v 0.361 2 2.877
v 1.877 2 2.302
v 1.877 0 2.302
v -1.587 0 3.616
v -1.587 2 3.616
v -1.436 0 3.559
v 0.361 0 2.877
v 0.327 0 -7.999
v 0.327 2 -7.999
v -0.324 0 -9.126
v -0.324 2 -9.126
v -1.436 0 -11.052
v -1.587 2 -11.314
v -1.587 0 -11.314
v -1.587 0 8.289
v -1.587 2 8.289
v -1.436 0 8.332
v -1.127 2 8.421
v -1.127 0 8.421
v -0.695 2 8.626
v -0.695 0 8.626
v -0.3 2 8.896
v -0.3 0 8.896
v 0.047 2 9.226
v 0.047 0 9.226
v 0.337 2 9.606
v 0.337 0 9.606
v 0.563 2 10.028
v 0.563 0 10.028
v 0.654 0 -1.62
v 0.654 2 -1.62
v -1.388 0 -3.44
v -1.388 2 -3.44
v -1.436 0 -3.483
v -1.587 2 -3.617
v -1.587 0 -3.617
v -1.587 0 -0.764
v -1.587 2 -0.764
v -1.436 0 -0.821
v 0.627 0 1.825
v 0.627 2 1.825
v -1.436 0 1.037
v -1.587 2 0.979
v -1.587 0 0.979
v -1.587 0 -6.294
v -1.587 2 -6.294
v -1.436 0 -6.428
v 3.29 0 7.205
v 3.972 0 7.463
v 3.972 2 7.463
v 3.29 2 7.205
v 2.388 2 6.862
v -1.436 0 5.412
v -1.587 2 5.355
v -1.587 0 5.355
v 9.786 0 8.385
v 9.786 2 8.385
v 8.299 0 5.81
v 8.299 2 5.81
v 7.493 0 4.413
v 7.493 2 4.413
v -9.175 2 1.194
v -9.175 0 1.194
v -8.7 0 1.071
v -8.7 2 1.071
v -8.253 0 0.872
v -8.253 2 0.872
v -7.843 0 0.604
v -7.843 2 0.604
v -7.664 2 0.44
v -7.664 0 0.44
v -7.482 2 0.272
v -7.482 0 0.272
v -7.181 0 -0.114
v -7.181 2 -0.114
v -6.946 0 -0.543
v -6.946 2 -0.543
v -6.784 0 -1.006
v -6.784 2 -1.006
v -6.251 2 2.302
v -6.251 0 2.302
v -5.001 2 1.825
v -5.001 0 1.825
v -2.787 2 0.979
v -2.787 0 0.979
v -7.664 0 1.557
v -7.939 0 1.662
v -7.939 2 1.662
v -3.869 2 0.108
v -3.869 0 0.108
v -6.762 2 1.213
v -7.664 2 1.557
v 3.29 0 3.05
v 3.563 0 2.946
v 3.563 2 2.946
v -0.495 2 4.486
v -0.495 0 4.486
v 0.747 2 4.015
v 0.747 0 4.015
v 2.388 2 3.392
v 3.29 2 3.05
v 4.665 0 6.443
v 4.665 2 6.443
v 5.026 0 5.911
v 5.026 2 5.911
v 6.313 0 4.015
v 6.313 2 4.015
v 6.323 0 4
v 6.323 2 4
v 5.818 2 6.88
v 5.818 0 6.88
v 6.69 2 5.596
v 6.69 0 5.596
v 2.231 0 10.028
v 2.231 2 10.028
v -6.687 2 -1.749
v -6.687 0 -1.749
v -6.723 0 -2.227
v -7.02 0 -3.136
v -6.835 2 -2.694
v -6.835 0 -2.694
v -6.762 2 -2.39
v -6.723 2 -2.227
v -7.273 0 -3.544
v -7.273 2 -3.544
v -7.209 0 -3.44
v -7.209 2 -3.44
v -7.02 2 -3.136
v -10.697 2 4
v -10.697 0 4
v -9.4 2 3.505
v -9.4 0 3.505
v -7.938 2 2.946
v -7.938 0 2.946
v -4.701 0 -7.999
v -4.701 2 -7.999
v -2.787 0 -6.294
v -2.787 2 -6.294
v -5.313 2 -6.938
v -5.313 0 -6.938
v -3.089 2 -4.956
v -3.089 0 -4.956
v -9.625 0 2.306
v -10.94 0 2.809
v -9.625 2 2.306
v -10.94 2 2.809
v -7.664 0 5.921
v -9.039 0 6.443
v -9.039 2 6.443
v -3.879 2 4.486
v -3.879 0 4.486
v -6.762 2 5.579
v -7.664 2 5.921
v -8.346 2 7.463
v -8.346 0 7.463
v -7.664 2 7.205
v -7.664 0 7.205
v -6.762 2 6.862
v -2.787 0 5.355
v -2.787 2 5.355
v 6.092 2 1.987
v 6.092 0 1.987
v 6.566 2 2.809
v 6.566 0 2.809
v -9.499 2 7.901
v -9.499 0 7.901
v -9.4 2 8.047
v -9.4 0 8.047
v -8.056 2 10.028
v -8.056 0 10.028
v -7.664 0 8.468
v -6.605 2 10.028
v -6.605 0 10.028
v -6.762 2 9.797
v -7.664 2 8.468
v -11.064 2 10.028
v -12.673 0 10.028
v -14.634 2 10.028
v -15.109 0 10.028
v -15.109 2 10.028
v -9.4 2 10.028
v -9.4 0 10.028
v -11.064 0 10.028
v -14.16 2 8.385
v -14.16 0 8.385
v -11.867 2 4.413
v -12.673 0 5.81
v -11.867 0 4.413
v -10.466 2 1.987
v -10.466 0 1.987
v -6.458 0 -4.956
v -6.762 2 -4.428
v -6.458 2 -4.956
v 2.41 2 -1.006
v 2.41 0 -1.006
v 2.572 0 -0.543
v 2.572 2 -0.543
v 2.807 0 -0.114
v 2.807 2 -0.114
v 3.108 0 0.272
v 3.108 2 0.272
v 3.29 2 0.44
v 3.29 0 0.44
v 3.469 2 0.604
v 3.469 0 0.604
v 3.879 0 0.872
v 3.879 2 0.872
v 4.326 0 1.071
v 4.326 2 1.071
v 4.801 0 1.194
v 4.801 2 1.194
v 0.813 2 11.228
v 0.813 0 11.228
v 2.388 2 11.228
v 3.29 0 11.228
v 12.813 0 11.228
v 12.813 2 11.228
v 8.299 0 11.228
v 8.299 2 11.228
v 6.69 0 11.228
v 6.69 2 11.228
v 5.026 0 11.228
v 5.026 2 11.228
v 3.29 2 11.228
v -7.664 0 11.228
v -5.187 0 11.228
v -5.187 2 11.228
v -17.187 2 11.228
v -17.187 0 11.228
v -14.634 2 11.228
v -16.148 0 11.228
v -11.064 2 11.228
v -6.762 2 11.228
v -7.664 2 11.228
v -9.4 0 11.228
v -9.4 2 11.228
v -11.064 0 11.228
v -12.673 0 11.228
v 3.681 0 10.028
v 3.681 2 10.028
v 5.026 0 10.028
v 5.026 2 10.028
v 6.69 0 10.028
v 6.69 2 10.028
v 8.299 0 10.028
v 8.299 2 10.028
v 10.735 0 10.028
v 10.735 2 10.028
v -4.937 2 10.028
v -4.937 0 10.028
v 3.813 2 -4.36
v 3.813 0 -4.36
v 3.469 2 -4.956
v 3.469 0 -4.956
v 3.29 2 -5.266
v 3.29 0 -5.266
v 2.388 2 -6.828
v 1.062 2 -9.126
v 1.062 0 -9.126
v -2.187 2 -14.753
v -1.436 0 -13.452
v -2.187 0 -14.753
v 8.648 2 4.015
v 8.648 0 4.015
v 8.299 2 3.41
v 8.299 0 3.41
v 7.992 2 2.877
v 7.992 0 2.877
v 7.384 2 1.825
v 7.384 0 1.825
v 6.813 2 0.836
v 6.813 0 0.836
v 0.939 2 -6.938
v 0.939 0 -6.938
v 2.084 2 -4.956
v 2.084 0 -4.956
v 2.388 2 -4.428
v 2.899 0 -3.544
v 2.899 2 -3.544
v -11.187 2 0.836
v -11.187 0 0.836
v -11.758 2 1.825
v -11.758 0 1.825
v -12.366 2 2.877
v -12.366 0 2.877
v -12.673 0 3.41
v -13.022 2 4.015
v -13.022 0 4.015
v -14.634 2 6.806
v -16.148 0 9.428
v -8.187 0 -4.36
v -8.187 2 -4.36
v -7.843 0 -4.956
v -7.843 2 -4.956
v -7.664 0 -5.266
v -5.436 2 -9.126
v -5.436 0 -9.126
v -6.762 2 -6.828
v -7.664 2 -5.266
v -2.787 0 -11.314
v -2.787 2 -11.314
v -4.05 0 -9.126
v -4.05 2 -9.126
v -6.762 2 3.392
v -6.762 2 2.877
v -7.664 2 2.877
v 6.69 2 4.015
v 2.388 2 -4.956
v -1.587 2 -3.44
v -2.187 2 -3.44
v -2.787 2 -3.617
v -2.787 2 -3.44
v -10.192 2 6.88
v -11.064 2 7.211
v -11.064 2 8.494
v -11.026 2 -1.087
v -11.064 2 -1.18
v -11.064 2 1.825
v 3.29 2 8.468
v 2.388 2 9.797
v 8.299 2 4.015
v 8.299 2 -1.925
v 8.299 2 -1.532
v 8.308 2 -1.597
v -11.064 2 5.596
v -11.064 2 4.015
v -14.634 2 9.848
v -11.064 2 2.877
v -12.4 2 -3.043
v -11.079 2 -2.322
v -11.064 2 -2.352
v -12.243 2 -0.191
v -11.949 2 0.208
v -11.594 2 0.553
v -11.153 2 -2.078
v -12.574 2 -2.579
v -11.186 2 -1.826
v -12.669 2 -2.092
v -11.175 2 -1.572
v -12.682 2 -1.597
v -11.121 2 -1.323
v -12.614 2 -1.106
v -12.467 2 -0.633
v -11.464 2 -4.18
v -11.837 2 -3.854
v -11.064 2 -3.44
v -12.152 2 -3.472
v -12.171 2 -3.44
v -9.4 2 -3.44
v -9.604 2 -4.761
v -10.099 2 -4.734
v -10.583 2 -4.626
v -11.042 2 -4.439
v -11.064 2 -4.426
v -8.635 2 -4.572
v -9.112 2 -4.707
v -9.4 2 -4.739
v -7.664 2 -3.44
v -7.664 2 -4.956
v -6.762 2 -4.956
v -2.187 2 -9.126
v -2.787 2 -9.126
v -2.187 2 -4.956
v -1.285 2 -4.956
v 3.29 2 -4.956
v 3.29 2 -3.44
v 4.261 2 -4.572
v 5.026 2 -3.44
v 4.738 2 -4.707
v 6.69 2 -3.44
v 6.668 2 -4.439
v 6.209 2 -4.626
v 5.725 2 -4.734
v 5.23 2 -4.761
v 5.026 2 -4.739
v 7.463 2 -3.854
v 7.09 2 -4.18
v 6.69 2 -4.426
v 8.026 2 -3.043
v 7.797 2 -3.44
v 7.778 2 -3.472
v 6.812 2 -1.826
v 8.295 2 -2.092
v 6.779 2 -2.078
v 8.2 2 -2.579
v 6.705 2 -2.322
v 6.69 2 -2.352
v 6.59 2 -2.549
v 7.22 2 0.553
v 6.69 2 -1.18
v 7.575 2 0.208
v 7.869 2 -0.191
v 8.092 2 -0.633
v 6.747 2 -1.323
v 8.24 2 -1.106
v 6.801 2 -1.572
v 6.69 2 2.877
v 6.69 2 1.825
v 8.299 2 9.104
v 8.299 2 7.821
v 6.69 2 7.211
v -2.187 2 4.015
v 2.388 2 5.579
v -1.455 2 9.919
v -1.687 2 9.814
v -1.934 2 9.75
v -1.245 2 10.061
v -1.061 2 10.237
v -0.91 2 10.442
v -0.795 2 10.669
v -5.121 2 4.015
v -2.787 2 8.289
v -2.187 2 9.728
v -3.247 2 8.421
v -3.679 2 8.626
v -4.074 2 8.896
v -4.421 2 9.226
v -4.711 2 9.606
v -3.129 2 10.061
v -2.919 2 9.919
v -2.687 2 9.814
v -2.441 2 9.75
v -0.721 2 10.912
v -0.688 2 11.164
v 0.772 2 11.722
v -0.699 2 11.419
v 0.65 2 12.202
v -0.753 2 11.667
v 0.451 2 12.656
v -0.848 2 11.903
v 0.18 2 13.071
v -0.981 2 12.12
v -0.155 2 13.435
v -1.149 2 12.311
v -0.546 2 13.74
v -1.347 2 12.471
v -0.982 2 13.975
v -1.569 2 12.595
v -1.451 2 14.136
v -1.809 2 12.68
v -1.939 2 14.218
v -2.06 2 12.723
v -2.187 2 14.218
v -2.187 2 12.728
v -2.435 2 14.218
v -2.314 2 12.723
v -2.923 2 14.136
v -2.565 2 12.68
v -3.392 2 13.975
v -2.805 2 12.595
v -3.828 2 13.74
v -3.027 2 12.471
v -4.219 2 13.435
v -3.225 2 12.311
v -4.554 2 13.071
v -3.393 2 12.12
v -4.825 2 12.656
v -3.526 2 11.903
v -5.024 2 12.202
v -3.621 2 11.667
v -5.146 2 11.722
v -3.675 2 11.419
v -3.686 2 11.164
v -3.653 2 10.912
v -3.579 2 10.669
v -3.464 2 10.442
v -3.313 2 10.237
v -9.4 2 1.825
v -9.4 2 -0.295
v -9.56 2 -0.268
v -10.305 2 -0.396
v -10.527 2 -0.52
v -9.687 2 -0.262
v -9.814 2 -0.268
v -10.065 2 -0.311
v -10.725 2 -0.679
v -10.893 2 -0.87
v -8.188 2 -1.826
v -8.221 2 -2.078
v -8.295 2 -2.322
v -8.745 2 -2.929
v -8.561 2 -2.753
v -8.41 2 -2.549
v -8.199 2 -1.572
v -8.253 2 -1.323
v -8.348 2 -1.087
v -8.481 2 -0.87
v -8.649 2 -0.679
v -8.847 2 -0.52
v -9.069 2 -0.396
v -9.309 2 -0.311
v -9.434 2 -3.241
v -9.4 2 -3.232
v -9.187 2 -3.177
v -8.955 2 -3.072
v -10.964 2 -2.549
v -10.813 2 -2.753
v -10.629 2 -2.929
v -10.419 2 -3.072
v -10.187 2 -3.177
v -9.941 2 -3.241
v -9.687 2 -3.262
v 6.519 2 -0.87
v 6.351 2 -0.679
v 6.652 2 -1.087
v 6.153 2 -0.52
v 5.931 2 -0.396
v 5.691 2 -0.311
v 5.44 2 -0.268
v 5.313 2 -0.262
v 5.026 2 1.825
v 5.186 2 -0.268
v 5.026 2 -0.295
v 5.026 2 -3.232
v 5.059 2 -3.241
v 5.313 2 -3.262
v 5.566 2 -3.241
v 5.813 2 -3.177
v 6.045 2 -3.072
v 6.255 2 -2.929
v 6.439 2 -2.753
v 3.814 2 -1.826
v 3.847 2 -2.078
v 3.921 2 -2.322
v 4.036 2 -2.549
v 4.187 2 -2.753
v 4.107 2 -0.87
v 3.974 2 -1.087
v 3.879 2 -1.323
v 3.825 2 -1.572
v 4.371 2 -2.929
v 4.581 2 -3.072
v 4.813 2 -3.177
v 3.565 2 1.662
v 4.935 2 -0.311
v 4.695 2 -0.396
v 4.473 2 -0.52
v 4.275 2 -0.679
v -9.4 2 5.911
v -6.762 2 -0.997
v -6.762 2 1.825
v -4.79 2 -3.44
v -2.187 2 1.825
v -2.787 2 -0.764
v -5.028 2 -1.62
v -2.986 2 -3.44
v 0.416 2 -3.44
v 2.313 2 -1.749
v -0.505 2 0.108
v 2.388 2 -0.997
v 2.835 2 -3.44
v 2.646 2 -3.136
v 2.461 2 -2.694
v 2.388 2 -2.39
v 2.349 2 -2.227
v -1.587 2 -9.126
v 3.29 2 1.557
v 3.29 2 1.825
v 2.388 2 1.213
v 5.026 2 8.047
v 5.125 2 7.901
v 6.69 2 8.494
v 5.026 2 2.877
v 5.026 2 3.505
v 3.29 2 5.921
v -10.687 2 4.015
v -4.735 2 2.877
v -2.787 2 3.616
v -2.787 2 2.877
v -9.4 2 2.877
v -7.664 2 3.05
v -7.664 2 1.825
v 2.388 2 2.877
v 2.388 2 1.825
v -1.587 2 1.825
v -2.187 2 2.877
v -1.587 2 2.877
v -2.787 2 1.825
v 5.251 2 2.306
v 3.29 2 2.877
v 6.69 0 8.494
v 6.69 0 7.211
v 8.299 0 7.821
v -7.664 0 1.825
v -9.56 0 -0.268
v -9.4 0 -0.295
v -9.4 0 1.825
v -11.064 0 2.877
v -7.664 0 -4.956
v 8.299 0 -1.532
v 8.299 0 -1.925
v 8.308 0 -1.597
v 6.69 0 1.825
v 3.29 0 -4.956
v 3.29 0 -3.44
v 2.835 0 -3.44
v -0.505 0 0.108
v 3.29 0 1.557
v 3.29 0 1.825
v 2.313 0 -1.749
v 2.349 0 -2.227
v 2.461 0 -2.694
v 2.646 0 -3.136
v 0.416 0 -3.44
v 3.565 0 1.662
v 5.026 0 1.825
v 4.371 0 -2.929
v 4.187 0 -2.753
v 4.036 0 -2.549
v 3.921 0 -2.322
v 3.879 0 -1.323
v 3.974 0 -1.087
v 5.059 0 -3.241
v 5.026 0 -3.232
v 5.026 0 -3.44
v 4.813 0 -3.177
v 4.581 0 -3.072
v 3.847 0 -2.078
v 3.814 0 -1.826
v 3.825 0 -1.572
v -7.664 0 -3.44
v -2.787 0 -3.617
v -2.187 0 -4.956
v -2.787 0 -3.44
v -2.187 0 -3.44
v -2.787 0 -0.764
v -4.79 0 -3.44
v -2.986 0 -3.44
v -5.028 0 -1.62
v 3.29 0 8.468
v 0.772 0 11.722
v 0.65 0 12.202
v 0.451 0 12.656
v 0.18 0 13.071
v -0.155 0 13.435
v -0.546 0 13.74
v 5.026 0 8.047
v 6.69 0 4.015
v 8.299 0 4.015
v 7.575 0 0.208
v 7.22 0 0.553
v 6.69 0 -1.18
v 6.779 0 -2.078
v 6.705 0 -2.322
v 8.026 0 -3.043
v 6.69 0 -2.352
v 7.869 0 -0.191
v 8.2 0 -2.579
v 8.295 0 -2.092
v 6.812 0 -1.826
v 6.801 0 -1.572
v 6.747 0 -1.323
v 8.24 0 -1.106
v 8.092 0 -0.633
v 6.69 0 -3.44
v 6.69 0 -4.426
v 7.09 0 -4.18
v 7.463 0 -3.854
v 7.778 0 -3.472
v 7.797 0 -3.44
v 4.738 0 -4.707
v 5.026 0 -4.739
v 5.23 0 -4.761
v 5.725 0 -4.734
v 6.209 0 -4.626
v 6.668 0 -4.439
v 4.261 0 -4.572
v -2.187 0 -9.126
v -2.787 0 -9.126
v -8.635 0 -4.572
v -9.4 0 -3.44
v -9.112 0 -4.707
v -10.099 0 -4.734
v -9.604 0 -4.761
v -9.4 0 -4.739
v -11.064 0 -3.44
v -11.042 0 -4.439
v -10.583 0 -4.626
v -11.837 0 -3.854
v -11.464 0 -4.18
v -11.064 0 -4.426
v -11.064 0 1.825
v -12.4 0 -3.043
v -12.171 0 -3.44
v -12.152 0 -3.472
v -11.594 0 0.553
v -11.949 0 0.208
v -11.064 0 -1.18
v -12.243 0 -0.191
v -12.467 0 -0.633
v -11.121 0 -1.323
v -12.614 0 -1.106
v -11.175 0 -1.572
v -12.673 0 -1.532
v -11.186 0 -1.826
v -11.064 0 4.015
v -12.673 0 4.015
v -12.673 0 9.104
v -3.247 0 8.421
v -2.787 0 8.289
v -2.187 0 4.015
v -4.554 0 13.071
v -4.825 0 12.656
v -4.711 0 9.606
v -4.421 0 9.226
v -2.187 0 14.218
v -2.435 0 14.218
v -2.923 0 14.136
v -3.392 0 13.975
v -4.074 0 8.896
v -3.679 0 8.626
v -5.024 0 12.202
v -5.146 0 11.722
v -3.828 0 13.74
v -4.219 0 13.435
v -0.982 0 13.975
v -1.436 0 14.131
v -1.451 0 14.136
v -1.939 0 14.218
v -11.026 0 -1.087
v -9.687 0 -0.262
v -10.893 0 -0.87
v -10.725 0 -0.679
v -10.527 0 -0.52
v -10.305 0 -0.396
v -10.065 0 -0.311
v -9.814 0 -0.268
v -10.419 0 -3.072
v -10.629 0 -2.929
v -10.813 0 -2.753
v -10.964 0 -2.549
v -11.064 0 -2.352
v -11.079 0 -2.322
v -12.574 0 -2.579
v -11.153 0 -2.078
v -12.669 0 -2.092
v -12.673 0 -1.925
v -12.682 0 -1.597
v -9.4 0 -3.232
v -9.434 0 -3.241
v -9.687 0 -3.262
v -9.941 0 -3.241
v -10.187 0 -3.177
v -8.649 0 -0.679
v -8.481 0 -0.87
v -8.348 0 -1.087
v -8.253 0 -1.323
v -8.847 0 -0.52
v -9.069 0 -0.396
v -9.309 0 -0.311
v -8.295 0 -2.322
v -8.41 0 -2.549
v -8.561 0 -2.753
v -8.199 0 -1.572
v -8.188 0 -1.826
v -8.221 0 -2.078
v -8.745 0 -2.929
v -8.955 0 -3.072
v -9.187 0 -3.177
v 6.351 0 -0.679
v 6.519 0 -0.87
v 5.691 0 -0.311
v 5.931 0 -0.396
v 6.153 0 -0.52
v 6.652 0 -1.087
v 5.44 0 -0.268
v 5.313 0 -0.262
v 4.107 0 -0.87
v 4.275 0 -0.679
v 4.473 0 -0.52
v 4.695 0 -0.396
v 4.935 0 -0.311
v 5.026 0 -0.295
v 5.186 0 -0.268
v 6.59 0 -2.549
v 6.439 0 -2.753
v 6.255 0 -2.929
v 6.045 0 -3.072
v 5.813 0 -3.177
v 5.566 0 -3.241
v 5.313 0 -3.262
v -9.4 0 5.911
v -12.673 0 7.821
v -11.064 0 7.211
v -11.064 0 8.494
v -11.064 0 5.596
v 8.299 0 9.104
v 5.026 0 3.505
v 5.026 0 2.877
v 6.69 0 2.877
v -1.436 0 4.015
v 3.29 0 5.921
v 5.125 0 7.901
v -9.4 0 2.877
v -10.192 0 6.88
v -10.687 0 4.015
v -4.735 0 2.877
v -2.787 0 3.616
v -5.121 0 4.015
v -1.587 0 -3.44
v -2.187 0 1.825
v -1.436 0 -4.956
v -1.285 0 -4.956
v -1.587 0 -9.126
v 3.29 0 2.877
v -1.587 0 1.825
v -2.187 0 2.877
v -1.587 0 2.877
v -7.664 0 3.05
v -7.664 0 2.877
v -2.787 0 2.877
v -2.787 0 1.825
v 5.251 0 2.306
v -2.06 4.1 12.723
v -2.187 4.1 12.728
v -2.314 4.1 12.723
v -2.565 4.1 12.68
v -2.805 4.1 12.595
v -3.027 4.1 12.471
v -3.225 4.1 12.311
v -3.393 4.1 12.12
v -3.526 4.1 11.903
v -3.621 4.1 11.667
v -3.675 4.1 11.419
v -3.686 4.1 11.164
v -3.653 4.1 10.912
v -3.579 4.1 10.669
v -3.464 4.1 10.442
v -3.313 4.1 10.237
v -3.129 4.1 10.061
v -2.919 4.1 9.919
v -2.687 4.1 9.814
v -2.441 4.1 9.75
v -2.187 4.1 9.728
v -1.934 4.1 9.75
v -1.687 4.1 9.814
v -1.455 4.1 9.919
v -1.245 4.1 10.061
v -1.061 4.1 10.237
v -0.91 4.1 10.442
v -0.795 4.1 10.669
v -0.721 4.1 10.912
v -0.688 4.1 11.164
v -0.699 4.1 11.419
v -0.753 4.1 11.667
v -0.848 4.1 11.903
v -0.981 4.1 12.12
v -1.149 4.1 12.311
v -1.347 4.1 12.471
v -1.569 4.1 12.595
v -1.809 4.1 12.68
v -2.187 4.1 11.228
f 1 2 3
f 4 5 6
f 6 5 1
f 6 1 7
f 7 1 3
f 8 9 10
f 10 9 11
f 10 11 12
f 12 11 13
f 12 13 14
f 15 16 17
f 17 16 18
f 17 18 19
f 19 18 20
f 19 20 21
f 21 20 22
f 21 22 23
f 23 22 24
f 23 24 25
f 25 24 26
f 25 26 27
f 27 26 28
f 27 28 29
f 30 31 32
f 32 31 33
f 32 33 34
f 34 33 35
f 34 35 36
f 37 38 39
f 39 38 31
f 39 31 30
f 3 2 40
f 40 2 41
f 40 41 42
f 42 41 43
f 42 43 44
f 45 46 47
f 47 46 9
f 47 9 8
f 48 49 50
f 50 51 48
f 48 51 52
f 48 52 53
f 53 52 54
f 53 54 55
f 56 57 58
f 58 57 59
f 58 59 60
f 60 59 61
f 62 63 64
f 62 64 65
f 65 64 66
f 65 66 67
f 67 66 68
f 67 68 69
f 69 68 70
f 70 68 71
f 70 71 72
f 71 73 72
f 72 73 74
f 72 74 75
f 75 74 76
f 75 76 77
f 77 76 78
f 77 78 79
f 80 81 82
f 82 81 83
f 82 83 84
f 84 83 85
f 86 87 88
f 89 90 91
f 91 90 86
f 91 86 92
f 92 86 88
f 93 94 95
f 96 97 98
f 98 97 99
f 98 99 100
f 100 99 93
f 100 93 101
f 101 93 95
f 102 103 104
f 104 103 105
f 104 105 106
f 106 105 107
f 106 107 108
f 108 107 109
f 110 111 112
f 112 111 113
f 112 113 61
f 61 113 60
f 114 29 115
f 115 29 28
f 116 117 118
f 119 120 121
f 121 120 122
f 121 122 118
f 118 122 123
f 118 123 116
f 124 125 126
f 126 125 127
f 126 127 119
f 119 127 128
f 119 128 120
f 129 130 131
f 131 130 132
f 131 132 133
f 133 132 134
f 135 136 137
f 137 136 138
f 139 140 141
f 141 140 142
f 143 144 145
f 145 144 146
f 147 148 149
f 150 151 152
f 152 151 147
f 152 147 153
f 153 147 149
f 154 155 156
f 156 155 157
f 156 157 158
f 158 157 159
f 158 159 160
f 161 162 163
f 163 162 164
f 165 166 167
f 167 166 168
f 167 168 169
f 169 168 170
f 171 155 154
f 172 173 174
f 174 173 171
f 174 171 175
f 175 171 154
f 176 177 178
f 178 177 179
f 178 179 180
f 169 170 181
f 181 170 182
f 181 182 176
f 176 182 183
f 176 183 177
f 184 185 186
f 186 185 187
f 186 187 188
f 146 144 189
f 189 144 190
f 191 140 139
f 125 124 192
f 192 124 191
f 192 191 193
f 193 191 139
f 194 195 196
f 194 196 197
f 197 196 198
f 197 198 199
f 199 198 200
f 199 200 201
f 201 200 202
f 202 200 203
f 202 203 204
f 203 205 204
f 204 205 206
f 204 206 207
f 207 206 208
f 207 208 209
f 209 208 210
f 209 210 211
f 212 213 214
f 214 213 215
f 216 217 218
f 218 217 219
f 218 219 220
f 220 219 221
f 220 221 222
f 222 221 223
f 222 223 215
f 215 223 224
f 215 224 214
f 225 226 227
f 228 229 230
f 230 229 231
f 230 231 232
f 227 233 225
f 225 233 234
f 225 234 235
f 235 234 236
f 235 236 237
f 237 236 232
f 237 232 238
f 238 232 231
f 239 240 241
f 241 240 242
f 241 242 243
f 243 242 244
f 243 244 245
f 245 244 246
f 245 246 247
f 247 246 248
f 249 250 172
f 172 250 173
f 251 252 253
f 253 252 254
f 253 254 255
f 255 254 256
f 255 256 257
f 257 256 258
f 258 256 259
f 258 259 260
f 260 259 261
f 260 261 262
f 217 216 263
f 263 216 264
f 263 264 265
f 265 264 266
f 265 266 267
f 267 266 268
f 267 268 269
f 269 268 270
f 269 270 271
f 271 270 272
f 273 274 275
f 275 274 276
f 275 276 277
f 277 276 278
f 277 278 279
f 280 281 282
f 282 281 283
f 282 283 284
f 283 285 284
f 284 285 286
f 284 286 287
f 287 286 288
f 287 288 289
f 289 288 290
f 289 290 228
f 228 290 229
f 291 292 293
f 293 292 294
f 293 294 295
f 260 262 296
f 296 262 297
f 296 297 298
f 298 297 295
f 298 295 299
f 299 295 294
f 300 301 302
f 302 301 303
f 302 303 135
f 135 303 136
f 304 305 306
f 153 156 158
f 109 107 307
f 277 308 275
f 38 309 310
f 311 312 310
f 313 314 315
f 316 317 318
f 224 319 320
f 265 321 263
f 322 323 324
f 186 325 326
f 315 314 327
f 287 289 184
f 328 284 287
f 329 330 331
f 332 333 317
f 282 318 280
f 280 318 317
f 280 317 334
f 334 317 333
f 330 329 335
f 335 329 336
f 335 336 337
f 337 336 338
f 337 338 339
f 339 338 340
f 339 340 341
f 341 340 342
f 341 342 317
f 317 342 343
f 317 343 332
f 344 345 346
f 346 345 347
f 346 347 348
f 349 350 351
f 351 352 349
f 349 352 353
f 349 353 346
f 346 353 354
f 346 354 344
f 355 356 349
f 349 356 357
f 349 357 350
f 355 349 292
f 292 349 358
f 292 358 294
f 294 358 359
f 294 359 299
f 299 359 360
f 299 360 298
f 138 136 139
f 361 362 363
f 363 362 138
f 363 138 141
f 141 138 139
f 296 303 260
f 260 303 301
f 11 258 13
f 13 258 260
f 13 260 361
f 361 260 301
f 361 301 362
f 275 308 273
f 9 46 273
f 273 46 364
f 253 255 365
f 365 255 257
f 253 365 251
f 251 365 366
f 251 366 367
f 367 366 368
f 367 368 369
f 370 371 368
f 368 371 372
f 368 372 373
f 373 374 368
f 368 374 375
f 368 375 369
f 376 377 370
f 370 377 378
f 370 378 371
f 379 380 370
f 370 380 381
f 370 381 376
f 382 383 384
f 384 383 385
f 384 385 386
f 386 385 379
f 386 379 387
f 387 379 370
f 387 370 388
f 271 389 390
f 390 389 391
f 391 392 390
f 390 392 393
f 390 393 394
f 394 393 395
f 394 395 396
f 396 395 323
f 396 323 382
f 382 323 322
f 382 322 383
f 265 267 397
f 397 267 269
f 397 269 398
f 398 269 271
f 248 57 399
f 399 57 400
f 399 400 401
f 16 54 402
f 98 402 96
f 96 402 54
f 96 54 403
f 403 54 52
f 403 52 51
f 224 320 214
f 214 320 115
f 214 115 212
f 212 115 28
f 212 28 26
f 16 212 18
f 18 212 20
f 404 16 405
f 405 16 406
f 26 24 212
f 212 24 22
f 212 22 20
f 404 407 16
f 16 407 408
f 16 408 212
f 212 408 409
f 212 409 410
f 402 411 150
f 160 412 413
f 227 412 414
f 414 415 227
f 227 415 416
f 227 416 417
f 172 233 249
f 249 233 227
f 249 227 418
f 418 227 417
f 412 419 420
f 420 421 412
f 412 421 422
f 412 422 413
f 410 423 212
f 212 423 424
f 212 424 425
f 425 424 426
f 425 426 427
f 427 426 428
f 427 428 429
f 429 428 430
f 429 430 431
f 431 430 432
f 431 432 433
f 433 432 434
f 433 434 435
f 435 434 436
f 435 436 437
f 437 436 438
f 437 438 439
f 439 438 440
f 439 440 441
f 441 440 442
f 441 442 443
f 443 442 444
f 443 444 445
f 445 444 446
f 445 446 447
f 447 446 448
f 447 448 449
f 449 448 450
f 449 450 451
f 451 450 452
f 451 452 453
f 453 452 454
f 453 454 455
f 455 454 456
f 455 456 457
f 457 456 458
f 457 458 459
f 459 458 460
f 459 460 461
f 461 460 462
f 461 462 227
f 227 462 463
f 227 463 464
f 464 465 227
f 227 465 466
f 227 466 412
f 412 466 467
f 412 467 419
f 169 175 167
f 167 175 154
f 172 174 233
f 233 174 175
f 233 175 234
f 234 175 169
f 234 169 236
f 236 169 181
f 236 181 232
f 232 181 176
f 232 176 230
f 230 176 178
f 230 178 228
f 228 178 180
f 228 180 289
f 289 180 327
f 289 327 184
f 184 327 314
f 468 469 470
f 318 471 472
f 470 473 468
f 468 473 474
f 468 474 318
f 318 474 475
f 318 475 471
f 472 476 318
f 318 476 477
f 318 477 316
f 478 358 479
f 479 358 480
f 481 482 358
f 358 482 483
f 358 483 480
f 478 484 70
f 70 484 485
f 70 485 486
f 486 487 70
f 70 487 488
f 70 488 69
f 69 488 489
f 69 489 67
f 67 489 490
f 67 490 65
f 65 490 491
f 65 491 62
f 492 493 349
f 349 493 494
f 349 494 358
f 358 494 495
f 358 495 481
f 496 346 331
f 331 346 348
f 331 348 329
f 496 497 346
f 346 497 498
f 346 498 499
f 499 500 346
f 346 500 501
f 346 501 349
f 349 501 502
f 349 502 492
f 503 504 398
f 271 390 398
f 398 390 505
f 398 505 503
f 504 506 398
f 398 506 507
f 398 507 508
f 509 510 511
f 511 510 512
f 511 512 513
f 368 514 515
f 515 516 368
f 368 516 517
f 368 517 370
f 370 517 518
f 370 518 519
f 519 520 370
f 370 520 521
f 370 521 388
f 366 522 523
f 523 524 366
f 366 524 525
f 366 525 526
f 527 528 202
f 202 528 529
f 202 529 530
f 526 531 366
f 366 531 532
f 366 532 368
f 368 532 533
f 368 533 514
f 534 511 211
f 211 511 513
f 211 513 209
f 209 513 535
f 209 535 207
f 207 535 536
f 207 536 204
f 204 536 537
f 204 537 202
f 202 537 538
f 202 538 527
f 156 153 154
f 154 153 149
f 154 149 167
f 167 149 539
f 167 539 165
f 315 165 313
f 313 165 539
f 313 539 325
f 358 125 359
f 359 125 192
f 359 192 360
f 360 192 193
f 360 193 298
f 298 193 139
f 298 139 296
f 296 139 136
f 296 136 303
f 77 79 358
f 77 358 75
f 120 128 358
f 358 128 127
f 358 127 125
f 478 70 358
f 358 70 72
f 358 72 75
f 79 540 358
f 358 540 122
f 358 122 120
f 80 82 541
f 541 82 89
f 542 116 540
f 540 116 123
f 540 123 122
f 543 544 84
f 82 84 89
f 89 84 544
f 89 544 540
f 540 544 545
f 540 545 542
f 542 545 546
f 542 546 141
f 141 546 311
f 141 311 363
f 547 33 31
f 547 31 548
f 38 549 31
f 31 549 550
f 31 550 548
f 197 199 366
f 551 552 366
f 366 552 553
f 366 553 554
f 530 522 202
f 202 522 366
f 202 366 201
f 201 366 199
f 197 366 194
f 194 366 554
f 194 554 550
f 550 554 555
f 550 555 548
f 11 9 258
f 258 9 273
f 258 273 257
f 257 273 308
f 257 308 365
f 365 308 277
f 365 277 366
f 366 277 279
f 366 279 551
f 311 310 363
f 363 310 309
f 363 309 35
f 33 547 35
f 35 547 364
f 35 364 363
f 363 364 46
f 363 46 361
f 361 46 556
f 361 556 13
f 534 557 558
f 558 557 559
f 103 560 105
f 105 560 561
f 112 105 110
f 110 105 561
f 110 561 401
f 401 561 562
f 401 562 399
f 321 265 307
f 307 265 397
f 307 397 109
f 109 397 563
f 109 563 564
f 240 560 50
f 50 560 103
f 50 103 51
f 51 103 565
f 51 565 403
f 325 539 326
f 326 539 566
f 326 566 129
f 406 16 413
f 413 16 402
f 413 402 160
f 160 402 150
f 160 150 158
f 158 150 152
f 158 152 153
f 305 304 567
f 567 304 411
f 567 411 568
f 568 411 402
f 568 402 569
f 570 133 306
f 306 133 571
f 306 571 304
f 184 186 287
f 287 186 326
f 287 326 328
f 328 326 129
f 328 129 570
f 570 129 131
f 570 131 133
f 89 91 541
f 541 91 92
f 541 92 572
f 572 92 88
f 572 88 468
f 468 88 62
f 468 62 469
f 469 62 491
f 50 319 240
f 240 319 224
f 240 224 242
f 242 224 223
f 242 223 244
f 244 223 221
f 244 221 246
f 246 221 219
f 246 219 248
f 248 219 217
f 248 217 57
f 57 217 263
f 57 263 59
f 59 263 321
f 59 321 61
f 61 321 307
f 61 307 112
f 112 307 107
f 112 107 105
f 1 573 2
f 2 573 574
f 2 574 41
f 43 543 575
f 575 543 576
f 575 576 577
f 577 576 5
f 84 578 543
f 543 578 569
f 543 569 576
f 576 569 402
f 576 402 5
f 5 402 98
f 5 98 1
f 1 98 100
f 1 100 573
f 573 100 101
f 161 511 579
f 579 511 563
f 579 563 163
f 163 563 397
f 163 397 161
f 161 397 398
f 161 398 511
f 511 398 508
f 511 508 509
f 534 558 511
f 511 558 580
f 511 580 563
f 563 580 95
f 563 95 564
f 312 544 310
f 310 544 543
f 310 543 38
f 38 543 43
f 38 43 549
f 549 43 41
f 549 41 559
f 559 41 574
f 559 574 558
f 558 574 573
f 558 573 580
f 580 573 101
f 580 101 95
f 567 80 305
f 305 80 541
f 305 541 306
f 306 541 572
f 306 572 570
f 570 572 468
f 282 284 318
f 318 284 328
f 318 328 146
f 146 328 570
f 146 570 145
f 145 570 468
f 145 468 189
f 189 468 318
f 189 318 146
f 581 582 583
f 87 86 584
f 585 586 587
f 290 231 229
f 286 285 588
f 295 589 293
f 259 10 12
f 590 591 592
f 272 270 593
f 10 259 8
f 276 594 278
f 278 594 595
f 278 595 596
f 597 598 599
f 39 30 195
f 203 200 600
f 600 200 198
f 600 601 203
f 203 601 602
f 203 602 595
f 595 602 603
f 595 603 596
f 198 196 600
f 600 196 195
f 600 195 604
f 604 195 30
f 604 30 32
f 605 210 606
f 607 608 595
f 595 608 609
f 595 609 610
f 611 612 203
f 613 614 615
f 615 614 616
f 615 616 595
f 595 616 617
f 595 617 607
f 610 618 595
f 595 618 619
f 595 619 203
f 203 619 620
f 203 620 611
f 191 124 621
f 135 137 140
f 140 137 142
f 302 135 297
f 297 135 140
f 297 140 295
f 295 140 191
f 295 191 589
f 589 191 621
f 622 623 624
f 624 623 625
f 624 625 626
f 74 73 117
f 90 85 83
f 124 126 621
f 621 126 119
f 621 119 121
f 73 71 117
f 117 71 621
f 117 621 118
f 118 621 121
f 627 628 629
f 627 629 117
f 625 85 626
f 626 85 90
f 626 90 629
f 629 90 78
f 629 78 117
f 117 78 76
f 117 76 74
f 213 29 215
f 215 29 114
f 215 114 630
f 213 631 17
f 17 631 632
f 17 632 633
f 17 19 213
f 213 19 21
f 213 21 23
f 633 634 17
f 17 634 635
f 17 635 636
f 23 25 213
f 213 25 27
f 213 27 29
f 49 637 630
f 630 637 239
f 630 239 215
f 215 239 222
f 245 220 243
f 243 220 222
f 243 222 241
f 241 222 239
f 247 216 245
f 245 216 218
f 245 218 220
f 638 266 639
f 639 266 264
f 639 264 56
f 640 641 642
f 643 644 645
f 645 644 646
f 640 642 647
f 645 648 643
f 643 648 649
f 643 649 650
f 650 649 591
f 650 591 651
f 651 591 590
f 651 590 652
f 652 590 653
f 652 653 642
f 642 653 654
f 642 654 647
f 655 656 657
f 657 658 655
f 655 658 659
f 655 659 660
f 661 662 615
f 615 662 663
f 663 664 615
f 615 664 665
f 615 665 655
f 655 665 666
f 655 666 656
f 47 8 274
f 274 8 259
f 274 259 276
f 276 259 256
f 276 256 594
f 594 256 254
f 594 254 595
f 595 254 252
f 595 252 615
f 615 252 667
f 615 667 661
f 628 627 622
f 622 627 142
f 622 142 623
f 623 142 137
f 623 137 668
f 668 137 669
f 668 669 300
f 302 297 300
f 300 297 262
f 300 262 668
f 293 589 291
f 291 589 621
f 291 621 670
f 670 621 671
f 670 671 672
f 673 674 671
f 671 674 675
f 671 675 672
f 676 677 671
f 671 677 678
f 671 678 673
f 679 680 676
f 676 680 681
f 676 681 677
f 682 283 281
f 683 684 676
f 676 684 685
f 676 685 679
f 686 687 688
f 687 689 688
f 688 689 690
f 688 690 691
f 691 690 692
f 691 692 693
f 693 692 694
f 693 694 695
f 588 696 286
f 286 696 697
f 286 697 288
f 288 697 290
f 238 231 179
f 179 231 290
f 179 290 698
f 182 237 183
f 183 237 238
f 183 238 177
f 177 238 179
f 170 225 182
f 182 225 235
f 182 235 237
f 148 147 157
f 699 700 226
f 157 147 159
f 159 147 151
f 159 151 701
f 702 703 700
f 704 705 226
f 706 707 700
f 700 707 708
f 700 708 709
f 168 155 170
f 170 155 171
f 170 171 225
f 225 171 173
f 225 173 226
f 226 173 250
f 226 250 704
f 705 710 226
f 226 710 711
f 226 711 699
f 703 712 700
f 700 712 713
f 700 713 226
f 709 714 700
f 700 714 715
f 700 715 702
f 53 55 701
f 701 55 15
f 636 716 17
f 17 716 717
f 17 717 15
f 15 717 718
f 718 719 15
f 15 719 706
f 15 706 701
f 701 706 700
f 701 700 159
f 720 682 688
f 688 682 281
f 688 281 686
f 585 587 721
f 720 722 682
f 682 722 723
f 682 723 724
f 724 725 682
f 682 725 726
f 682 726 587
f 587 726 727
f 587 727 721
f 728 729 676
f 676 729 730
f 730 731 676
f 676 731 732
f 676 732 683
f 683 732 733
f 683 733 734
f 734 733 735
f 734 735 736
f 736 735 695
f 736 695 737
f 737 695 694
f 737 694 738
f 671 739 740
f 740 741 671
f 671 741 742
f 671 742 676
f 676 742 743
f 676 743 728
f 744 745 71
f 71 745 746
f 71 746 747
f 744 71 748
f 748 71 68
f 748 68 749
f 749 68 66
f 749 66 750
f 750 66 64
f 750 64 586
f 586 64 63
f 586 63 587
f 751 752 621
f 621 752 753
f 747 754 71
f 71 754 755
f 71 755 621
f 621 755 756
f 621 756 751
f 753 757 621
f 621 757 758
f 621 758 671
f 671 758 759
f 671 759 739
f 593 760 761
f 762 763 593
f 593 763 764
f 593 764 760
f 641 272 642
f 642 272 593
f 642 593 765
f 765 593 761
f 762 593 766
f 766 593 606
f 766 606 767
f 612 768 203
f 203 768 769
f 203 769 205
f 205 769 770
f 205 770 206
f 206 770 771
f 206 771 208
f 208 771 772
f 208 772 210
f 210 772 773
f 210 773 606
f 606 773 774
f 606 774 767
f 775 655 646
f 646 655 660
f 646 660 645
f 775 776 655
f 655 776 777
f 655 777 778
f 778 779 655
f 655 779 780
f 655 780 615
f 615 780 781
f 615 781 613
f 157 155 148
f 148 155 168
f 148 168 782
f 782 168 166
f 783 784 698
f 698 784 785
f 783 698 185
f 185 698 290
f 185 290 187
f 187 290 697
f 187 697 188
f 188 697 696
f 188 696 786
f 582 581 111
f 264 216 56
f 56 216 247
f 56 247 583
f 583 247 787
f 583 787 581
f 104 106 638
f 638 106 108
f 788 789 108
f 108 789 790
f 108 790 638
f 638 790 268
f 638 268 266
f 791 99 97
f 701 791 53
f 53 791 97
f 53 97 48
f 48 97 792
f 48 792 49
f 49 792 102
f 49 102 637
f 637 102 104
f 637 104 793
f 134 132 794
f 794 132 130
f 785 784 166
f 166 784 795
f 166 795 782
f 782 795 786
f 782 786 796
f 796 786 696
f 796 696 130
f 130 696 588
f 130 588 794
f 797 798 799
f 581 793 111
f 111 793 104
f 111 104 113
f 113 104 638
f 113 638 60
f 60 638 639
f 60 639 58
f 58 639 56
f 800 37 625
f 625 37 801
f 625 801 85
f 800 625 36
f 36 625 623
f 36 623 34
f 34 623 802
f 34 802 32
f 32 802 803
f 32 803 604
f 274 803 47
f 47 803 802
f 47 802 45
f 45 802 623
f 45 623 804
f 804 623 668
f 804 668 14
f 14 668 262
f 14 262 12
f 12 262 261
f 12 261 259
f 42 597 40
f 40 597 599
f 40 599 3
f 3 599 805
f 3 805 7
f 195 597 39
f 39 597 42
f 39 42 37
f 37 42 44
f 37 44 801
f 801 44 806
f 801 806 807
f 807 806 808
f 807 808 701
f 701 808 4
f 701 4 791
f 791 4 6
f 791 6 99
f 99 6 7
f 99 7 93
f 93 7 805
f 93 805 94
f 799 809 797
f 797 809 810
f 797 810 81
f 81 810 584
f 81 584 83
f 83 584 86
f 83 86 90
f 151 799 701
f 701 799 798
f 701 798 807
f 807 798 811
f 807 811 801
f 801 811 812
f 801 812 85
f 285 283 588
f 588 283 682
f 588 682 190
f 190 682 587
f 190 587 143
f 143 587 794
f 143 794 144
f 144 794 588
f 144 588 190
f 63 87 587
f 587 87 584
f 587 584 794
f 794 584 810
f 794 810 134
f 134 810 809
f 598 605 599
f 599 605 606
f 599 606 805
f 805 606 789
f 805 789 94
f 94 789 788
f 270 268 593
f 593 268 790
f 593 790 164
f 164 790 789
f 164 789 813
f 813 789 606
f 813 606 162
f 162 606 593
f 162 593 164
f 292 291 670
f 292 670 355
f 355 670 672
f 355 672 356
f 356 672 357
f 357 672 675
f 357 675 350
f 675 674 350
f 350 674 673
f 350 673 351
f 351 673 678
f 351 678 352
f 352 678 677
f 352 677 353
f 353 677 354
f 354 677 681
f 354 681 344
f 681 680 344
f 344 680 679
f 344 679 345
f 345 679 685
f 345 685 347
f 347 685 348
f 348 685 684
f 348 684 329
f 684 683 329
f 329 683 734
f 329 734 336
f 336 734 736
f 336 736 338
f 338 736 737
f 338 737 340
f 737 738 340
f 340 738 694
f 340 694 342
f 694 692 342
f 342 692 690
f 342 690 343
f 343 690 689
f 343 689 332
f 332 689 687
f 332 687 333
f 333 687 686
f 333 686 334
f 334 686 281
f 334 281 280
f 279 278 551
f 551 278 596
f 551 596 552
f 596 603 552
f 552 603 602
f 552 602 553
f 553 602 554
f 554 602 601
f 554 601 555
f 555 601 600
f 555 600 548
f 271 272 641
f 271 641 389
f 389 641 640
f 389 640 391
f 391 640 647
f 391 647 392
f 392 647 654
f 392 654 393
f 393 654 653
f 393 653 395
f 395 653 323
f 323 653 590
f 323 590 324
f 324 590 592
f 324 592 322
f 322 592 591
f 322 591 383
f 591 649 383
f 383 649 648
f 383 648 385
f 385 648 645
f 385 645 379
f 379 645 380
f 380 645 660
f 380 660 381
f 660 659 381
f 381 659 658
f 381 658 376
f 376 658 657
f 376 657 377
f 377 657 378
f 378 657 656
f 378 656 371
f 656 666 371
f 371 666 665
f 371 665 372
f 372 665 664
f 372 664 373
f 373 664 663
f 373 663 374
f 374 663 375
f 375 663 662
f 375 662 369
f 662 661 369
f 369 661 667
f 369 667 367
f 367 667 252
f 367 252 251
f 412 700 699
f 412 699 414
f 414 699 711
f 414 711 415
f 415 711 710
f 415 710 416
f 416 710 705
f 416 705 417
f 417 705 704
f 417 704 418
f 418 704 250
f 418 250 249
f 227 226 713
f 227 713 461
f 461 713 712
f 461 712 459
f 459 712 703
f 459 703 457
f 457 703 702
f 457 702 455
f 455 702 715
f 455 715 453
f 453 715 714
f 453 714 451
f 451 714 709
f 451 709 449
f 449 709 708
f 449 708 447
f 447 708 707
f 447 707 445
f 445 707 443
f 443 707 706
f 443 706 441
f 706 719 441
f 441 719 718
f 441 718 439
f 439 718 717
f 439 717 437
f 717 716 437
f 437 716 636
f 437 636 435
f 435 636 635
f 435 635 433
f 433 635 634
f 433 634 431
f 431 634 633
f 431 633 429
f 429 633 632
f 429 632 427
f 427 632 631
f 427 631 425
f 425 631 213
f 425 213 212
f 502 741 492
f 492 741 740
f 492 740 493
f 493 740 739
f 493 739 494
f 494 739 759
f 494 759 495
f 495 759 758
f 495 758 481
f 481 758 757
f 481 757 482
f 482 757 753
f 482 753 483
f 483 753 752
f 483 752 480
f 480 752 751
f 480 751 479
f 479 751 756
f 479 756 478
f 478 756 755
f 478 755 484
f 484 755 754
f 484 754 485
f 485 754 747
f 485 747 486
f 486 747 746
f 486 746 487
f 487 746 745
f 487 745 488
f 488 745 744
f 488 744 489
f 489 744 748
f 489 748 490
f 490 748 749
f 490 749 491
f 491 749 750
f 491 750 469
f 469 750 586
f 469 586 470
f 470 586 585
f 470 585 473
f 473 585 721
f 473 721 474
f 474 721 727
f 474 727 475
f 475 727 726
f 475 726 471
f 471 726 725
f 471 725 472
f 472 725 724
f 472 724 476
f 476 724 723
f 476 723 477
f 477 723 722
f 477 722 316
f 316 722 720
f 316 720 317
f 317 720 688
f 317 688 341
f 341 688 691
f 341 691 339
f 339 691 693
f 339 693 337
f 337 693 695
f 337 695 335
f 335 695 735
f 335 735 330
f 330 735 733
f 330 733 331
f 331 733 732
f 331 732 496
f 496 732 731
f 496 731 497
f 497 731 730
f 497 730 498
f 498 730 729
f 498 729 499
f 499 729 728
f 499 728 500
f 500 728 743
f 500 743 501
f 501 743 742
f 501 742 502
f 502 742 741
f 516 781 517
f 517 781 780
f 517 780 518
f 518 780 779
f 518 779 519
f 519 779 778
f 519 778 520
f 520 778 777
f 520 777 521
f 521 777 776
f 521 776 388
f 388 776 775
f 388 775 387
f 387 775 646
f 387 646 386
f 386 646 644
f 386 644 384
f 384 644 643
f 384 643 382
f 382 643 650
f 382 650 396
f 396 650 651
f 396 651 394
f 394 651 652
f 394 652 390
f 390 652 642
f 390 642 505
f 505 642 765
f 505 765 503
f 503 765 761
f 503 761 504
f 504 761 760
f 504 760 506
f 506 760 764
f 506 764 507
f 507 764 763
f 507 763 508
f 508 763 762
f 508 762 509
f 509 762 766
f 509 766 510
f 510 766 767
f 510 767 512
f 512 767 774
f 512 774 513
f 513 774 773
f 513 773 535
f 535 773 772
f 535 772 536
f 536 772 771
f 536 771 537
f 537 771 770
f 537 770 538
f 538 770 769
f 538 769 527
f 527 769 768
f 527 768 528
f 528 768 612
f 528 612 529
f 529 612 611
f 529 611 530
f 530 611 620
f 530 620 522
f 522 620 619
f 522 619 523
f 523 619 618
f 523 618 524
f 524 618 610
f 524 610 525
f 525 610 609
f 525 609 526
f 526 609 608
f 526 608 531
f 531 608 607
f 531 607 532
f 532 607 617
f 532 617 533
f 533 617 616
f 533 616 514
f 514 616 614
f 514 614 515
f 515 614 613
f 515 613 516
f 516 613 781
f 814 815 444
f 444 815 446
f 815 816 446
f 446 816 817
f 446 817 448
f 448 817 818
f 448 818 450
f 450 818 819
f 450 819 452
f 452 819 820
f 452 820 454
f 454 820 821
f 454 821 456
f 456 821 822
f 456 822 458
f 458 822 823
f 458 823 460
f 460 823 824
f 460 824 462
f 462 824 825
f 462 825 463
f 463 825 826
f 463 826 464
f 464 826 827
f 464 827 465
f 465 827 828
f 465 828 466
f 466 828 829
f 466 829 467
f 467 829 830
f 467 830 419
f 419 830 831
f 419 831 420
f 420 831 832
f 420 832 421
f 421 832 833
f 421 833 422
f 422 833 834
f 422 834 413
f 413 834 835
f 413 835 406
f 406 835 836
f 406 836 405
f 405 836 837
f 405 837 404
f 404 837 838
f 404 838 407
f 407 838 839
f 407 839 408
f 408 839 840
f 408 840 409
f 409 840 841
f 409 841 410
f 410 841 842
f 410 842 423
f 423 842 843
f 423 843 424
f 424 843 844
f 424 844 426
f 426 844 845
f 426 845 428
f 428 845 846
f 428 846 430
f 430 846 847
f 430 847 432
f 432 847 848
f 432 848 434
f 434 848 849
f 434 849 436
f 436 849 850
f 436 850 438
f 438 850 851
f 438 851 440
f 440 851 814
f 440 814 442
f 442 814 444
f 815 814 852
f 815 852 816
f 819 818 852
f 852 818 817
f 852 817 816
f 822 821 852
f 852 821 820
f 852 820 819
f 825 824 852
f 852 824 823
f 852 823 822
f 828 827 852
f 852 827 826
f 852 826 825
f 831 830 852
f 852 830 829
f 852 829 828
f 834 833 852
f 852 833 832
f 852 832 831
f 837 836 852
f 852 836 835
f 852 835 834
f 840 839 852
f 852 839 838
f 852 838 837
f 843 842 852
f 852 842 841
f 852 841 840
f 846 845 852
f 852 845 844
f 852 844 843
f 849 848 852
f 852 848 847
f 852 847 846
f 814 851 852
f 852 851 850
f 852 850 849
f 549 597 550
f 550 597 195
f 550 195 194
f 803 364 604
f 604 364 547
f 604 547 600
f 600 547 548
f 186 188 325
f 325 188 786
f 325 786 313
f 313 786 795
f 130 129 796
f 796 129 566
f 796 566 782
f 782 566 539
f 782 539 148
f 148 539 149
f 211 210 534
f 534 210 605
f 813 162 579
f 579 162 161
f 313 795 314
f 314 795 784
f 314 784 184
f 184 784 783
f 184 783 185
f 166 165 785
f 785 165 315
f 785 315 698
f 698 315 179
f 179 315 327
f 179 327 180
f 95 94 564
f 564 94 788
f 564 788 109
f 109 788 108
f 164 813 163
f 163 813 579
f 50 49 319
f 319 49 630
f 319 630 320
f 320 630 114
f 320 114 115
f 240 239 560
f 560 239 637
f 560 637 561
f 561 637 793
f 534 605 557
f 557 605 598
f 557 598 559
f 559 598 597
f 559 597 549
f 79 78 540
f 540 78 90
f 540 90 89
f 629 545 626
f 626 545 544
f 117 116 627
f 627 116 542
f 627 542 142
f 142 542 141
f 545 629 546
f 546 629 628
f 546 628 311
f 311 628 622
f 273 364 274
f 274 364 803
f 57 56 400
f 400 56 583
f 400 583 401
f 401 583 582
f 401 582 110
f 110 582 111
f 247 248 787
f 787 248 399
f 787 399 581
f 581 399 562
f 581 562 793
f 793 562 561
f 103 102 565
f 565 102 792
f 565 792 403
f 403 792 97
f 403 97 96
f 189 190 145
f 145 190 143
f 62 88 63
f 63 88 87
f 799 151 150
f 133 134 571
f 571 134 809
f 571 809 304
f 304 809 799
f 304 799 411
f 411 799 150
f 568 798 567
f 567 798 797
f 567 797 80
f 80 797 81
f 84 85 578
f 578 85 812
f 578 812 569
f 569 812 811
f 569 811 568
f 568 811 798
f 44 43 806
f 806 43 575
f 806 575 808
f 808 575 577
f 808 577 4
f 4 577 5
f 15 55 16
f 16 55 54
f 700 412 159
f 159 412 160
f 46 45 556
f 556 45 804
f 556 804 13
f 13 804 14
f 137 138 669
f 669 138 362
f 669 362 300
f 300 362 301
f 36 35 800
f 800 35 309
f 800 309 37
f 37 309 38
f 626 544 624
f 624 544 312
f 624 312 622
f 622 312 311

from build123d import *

# Parameters (mm, degrees)
EXTRUDE_THIN1_DEPTH = 2
SKETCH2_R           = 3
BOSS_EXTRUDE1_DEPTH = 2
SKETCH3_R           = 1.5
CUT_EXTRUDE1_DEPTH  = 23.73845331
SKETCH4_R           = 1.5
BOSS_EXTRUDE2_DEPTH = 2.1
EXTRUDE_THIN2_DEPTH = 2
EXTRUDE_THIN3_DEPTH = 2
SKETCH7_W           = 1.2
SKETCH7_H           = 23.975911633
EXTRUDE_THIN4_DEPTH = 2


with BuildPart() as part:
    # Sketch1 → Extrude-Thin1 (new body)
    with BuildSketch(Plane(origin=(0, 0, 0), x_dir=(1, 0, 0), z_dir=(0, 1, 0))):
        Polygon((-2.187026997, 14.752740827), (-17.187026997, -11.228021286), (12.812973003, -11.228021286), align=None)
        Polygon((-2.187026997, 12.352740827), (-15.108566028, -10.028021286), (10.734512034, -10.028021286), align=None, mode=Mode.SUBTRACT)
    extrude(amount=EXTRUDE_THIN1_DEPTH)

    # Sketch2 → Boss-Extrude1 (add)
    with BuildSketch(Plane(origin=(0, 0, 0), x_dir=(1, 0, 0), z_dir=(0, 1, 0))):
        with Locations((-9.687026997, 1.76235977)):
            Circle(SKETCH2_R)
        with Locations((5.312973003, 1.76235977)):
            Circle(SKETCH2_R)
        with Locations((-2.187026997, -11.228021286)):
            Circle(SKETCH2_R)
    extrude(amount=BOSS_EXTRUDE1_DEPTH)

    # Sketch3 → Cut-Extrude1 (cut, through all)
    with BuildSketch(Plane(origin=(0, 0, 0), x_dir=(1, 0, 0), z_dir=(0, 1, 0))):
        with Locations(Location((-9.687026997, 1.76235977, 0), (0, 0, 270))):
            Circle(SKETCH3_R)
        with Locations(Location((5.312973003, 1.76235977, 0), (0, 0, 270))):
            Circle(SKETCH3_R)
    extrude(amount=CUT_EXTRUDE1_DEPTH, mode=Mode.SUBTRACT)

    # Sketch4 → Boss-Extrude2 (add)
    with BuildSketch(Plane(origin=(0, 2, 0), x_dir=(1, 0, 0), z_dir=(0, 1, 0))):
        with Locations(Location((-2.187026997, -11.228021286, 0), (0, 0, 270))):
            Circle(SKETCH4_R)
    extrude(amount=BOSS_EXTRUDE2_DEPTH)

    # Sketch5 → Extrude-Thin2 (add)
    with BuildSketch(Plane(origin=(0, 0, 0), x_dir=(1, 0, 0), z_dir=(0, 1, 0))):
        Polygon((-5.388180626, 8.61177443), (2.926064281, 1.202897678), (-10.696610006, -3.999977956), (-6.443313294, -10.266536854), (-7.436211418, -10.940445836), (-12.540725216, -3.419753411), (0.654437519, 1.619843752), (-6.186526415, 7.715870417), align=None)
    extrude_thin2 = extrude(amount=EXTRUDE_THIN2_DEPTH)

    # Sketch6 → Extrude-Thin3 (add)
    with BuildSketch(Plane(origin=(0, 0, 0), x_dir=(1, 0, 0), z_dir=(0, 1, 0))):
        Polygon((-15.108566028, -10.028021286), (6.483160233, -1.838837543), (6.05761065, -0.716827048), (-15.534115611, -8.906010791), align=None)
    extrude_thin3 = extrude(amount=EXTRUDE_THIN3_DEPTH)

    # Mirror1: Extrude-Thin2, Extrude-Thin3 across plane
    add(extrude_thin2.mirror(Plane(origin=(-2.187026997, 0, 0), x_dir=(0, 0, 1), z_dir=(1, 0, 0))))
    add(extrude_thin3.mirror(Plane(origin=(-2.187026997, 0, 0), x_dir=(0, 0, 1), z_dir=(1, 0, 0))))

    # Sketch7 → Extrude-Thin4 (add)
    with BuildSketch(Plane(origin=(0, 0, 0), x_dir=(1, 0, 0), z_dir=(0, 1, 0))):
        with Locations((-2.187026997, 0.75993453)):
            Rectangle(SKETCH7_W, SKETCH7_H)
    extrude(amount=EXTRUDE_THIN4_DEPTH)


solid = part.part
